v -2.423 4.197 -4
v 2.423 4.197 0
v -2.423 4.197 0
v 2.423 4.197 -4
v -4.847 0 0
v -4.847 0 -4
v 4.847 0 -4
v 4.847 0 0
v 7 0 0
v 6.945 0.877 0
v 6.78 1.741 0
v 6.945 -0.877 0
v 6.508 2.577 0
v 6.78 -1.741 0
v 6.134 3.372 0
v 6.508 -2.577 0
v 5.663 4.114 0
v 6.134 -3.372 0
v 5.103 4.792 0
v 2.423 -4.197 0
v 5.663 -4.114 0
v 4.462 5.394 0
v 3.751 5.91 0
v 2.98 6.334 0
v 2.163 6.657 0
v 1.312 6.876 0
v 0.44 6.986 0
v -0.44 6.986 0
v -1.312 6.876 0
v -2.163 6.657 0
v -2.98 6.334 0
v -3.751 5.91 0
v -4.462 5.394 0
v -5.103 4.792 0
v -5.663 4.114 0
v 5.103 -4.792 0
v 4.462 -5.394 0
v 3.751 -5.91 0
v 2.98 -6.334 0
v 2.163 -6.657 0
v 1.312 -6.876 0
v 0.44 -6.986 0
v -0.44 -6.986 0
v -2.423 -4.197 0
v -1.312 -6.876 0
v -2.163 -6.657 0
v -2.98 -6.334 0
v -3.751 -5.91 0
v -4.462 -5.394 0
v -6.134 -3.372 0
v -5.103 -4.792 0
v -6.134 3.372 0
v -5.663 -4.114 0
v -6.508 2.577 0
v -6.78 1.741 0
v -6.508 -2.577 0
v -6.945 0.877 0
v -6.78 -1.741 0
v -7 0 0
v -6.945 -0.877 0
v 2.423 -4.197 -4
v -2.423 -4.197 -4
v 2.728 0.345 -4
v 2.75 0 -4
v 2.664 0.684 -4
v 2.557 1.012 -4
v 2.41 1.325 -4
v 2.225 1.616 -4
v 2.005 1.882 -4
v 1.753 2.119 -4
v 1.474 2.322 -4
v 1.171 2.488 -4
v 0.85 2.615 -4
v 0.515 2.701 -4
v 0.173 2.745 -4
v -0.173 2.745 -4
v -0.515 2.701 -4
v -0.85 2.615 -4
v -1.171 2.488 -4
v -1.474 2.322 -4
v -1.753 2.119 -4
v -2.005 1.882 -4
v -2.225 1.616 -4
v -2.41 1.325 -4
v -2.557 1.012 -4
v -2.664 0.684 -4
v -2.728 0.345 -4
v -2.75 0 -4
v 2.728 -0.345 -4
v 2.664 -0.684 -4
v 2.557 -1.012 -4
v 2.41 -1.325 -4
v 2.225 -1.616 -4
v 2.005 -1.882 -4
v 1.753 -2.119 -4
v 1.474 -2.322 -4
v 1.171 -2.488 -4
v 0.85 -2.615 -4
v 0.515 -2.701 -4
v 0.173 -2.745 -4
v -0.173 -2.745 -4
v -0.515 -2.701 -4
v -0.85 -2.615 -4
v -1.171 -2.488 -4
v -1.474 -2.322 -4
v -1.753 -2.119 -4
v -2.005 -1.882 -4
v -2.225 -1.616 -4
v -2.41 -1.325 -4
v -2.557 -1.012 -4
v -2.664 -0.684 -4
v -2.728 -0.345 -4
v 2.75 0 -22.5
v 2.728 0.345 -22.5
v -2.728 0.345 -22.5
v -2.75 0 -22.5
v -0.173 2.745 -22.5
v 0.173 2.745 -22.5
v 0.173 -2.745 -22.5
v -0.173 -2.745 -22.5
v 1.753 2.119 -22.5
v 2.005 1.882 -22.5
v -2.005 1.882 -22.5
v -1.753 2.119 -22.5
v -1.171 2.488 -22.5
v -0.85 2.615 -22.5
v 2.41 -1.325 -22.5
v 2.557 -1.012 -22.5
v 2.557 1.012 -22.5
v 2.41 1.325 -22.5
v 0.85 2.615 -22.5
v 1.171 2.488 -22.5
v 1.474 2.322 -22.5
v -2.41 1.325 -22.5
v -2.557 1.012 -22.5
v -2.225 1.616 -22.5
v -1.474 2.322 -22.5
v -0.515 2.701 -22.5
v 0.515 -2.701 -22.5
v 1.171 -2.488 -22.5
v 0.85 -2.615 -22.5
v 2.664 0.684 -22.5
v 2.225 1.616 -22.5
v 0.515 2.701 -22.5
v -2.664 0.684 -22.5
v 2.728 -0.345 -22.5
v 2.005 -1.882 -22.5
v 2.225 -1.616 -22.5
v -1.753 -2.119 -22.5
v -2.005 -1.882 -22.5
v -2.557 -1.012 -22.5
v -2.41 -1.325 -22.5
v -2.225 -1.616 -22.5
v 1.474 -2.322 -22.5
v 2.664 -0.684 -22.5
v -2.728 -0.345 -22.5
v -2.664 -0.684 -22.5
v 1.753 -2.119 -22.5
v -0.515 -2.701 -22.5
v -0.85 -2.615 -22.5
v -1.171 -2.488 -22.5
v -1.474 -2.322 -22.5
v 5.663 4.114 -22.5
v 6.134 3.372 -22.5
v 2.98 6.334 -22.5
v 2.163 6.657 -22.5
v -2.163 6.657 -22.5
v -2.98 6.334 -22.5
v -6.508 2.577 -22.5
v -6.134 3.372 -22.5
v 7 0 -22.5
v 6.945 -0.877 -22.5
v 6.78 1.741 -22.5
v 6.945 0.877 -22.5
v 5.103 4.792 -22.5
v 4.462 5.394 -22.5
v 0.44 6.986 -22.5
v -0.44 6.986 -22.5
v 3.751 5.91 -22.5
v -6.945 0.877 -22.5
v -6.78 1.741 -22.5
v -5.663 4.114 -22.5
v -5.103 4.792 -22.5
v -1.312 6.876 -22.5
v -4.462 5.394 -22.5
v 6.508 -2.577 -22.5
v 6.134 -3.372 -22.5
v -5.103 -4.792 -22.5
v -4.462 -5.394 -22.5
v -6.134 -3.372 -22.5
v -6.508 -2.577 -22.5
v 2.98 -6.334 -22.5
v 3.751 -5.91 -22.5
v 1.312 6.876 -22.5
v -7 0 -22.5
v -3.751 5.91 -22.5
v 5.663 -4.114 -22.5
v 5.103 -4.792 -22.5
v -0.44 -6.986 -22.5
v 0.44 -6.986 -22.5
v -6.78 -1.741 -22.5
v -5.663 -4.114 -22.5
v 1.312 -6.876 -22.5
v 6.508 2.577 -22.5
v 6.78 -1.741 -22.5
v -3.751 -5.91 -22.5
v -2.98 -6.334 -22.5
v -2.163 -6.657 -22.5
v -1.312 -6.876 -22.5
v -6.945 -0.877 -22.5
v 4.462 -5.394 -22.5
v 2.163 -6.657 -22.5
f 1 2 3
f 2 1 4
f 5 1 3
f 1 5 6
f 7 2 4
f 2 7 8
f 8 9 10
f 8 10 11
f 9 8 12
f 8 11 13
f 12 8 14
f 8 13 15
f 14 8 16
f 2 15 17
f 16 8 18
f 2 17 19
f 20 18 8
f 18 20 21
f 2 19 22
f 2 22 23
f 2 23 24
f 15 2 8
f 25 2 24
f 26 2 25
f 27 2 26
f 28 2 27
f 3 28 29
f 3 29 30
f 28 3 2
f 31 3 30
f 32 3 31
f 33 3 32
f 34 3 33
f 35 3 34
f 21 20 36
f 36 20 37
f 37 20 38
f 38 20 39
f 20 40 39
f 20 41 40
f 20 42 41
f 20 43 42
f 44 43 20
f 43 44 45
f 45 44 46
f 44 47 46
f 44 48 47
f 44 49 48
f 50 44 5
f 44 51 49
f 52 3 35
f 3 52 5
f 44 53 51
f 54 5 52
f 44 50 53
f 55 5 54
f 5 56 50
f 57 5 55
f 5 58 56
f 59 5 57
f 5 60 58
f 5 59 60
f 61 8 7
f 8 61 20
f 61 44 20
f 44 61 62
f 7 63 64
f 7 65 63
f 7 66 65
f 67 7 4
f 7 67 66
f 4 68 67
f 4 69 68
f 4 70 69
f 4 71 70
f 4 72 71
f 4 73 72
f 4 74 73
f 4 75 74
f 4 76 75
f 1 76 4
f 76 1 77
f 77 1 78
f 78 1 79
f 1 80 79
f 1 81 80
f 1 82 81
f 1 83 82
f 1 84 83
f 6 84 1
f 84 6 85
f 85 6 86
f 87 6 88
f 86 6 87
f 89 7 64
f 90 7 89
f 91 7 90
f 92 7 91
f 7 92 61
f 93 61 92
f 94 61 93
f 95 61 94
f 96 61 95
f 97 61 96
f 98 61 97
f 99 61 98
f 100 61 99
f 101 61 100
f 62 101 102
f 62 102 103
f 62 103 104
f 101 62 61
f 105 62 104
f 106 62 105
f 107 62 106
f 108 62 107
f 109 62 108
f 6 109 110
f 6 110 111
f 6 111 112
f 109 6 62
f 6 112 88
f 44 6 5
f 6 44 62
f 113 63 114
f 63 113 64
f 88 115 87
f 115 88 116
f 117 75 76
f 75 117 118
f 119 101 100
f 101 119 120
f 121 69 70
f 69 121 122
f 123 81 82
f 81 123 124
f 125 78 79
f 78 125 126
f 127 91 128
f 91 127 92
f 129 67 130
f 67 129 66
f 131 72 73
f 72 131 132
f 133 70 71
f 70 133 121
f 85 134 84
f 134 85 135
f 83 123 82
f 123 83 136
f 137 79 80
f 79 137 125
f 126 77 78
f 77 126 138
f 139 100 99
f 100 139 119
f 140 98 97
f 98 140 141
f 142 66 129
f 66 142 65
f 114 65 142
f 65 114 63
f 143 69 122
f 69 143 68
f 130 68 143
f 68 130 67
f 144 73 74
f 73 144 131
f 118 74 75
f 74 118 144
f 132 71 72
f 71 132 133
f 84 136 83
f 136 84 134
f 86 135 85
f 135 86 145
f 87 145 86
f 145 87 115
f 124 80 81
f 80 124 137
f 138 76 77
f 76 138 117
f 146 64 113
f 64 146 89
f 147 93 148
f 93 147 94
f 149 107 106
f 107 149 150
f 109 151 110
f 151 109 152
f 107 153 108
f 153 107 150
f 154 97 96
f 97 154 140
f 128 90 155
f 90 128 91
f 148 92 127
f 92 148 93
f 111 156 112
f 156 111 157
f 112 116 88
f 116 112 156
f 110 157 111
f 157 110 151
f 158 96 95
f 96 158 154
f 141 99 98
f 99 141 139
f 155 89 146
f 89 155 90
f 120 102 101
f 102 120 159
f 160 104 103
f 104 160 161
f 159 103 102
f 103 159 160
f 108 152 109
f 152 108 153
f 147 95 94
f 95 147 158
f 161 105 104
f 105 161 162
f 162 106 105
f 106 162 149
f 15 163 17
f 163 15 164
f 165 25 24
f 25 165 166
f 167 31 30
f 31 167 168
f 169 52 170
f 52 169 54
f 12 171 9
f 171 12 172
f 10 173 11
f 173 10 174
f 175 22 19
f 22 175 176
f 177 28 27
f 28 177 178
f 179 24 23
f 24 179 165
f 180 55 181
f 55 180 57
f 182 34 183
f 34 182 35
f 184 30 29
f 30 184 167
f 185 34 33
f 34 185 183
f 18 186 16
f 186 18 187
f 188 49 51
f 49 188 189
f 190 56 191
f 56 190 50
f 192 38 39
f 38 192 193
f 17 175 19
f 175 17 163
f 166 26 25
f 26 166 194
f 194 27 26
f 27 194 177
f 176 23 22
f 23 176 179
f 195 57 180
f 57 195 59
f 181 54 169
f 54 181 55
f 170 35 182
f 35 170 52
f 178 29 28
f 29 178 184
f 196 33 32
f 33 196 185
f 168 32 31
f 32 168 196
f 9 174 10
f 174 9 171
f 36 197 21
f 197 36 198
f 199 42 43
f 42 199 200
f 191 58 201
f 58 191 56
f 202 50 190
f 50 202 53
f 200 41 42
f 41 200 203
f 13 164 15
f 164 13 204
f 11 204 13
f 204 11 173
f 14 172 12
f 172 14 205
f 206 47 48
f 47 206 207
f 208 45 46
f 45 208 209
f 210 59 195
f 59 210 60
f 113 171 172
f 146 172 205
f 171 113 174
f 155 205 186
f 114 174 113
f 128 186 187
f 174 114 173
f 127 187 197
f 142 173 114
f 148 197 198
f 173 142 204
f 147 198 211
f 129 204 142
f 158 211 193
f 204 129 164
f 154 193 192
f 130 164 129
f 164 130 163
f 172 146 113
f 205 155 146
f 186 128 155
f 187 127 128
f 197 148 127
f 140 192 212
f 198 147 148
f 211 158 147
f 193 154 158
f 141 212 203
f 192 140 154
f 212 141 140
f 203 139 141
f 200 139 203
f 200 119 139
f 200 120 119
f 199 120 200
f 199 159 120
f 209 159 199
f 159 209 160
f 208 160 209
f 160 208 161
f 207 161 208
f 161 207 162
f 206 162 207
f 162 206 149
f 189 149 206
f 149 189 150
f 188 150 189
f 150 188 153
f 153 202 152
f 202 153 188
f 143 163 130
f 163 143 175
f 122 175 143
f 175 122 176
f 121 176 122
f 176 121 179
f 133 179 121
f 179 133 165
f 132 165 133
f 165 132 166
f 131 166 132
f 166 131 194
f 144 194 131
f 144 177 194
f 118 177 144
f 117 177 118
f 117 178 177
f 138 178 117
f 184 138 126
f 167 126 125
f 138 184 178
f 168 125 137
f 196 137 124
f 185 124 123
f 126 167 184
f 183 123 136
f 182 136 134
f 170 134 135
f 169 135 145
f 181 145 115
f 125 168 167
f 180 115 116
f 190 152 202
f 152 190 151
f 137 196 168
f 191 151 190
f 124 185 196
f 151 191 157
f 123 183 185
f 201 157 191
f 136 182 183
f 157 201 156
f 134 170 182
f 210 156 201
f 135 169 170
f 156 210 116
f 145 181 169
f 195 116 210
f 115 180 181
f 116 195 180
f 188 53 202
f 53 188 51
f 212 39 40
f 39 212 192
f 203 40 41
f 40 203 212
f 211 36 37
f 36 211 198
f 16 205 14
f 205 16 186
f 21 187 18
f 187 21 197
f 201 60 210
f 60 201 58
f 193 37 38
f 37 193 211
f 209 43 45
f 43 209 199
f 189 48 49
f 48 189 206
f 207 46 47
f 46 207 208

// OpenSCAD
$fn = 50;

difference() {
	union() {
		translate(v = [0, 0, -22.5]) {
			cylinder(h = 22.5, r = 7.0);
		}
	}
	union() {
		translate(v = [0, 0, 0]) {
			rotate(a = [0, 0, 0]) {
				difference() {
					union() {
						translate(v = [0, 0, -4]) {
							linear_extrude(height = 4) {
								polygon(points = [[4.8468, 0.0], [2.4234000000000004, 4.197451927062417], [-2.423399999999999, 4.197451927062417], [-4.8468, 5.935618106107392e-16], [-2.423400000000002, -4.197451927062416], [2.423399999999997, -4.197451927062419]]);
							}
						}
					}
					union();
				}
			}
		}
		#translate(v = [0, 0, -100.0]) {
			cylinder(h = 200, r = 2.75);
		}
	}
}
